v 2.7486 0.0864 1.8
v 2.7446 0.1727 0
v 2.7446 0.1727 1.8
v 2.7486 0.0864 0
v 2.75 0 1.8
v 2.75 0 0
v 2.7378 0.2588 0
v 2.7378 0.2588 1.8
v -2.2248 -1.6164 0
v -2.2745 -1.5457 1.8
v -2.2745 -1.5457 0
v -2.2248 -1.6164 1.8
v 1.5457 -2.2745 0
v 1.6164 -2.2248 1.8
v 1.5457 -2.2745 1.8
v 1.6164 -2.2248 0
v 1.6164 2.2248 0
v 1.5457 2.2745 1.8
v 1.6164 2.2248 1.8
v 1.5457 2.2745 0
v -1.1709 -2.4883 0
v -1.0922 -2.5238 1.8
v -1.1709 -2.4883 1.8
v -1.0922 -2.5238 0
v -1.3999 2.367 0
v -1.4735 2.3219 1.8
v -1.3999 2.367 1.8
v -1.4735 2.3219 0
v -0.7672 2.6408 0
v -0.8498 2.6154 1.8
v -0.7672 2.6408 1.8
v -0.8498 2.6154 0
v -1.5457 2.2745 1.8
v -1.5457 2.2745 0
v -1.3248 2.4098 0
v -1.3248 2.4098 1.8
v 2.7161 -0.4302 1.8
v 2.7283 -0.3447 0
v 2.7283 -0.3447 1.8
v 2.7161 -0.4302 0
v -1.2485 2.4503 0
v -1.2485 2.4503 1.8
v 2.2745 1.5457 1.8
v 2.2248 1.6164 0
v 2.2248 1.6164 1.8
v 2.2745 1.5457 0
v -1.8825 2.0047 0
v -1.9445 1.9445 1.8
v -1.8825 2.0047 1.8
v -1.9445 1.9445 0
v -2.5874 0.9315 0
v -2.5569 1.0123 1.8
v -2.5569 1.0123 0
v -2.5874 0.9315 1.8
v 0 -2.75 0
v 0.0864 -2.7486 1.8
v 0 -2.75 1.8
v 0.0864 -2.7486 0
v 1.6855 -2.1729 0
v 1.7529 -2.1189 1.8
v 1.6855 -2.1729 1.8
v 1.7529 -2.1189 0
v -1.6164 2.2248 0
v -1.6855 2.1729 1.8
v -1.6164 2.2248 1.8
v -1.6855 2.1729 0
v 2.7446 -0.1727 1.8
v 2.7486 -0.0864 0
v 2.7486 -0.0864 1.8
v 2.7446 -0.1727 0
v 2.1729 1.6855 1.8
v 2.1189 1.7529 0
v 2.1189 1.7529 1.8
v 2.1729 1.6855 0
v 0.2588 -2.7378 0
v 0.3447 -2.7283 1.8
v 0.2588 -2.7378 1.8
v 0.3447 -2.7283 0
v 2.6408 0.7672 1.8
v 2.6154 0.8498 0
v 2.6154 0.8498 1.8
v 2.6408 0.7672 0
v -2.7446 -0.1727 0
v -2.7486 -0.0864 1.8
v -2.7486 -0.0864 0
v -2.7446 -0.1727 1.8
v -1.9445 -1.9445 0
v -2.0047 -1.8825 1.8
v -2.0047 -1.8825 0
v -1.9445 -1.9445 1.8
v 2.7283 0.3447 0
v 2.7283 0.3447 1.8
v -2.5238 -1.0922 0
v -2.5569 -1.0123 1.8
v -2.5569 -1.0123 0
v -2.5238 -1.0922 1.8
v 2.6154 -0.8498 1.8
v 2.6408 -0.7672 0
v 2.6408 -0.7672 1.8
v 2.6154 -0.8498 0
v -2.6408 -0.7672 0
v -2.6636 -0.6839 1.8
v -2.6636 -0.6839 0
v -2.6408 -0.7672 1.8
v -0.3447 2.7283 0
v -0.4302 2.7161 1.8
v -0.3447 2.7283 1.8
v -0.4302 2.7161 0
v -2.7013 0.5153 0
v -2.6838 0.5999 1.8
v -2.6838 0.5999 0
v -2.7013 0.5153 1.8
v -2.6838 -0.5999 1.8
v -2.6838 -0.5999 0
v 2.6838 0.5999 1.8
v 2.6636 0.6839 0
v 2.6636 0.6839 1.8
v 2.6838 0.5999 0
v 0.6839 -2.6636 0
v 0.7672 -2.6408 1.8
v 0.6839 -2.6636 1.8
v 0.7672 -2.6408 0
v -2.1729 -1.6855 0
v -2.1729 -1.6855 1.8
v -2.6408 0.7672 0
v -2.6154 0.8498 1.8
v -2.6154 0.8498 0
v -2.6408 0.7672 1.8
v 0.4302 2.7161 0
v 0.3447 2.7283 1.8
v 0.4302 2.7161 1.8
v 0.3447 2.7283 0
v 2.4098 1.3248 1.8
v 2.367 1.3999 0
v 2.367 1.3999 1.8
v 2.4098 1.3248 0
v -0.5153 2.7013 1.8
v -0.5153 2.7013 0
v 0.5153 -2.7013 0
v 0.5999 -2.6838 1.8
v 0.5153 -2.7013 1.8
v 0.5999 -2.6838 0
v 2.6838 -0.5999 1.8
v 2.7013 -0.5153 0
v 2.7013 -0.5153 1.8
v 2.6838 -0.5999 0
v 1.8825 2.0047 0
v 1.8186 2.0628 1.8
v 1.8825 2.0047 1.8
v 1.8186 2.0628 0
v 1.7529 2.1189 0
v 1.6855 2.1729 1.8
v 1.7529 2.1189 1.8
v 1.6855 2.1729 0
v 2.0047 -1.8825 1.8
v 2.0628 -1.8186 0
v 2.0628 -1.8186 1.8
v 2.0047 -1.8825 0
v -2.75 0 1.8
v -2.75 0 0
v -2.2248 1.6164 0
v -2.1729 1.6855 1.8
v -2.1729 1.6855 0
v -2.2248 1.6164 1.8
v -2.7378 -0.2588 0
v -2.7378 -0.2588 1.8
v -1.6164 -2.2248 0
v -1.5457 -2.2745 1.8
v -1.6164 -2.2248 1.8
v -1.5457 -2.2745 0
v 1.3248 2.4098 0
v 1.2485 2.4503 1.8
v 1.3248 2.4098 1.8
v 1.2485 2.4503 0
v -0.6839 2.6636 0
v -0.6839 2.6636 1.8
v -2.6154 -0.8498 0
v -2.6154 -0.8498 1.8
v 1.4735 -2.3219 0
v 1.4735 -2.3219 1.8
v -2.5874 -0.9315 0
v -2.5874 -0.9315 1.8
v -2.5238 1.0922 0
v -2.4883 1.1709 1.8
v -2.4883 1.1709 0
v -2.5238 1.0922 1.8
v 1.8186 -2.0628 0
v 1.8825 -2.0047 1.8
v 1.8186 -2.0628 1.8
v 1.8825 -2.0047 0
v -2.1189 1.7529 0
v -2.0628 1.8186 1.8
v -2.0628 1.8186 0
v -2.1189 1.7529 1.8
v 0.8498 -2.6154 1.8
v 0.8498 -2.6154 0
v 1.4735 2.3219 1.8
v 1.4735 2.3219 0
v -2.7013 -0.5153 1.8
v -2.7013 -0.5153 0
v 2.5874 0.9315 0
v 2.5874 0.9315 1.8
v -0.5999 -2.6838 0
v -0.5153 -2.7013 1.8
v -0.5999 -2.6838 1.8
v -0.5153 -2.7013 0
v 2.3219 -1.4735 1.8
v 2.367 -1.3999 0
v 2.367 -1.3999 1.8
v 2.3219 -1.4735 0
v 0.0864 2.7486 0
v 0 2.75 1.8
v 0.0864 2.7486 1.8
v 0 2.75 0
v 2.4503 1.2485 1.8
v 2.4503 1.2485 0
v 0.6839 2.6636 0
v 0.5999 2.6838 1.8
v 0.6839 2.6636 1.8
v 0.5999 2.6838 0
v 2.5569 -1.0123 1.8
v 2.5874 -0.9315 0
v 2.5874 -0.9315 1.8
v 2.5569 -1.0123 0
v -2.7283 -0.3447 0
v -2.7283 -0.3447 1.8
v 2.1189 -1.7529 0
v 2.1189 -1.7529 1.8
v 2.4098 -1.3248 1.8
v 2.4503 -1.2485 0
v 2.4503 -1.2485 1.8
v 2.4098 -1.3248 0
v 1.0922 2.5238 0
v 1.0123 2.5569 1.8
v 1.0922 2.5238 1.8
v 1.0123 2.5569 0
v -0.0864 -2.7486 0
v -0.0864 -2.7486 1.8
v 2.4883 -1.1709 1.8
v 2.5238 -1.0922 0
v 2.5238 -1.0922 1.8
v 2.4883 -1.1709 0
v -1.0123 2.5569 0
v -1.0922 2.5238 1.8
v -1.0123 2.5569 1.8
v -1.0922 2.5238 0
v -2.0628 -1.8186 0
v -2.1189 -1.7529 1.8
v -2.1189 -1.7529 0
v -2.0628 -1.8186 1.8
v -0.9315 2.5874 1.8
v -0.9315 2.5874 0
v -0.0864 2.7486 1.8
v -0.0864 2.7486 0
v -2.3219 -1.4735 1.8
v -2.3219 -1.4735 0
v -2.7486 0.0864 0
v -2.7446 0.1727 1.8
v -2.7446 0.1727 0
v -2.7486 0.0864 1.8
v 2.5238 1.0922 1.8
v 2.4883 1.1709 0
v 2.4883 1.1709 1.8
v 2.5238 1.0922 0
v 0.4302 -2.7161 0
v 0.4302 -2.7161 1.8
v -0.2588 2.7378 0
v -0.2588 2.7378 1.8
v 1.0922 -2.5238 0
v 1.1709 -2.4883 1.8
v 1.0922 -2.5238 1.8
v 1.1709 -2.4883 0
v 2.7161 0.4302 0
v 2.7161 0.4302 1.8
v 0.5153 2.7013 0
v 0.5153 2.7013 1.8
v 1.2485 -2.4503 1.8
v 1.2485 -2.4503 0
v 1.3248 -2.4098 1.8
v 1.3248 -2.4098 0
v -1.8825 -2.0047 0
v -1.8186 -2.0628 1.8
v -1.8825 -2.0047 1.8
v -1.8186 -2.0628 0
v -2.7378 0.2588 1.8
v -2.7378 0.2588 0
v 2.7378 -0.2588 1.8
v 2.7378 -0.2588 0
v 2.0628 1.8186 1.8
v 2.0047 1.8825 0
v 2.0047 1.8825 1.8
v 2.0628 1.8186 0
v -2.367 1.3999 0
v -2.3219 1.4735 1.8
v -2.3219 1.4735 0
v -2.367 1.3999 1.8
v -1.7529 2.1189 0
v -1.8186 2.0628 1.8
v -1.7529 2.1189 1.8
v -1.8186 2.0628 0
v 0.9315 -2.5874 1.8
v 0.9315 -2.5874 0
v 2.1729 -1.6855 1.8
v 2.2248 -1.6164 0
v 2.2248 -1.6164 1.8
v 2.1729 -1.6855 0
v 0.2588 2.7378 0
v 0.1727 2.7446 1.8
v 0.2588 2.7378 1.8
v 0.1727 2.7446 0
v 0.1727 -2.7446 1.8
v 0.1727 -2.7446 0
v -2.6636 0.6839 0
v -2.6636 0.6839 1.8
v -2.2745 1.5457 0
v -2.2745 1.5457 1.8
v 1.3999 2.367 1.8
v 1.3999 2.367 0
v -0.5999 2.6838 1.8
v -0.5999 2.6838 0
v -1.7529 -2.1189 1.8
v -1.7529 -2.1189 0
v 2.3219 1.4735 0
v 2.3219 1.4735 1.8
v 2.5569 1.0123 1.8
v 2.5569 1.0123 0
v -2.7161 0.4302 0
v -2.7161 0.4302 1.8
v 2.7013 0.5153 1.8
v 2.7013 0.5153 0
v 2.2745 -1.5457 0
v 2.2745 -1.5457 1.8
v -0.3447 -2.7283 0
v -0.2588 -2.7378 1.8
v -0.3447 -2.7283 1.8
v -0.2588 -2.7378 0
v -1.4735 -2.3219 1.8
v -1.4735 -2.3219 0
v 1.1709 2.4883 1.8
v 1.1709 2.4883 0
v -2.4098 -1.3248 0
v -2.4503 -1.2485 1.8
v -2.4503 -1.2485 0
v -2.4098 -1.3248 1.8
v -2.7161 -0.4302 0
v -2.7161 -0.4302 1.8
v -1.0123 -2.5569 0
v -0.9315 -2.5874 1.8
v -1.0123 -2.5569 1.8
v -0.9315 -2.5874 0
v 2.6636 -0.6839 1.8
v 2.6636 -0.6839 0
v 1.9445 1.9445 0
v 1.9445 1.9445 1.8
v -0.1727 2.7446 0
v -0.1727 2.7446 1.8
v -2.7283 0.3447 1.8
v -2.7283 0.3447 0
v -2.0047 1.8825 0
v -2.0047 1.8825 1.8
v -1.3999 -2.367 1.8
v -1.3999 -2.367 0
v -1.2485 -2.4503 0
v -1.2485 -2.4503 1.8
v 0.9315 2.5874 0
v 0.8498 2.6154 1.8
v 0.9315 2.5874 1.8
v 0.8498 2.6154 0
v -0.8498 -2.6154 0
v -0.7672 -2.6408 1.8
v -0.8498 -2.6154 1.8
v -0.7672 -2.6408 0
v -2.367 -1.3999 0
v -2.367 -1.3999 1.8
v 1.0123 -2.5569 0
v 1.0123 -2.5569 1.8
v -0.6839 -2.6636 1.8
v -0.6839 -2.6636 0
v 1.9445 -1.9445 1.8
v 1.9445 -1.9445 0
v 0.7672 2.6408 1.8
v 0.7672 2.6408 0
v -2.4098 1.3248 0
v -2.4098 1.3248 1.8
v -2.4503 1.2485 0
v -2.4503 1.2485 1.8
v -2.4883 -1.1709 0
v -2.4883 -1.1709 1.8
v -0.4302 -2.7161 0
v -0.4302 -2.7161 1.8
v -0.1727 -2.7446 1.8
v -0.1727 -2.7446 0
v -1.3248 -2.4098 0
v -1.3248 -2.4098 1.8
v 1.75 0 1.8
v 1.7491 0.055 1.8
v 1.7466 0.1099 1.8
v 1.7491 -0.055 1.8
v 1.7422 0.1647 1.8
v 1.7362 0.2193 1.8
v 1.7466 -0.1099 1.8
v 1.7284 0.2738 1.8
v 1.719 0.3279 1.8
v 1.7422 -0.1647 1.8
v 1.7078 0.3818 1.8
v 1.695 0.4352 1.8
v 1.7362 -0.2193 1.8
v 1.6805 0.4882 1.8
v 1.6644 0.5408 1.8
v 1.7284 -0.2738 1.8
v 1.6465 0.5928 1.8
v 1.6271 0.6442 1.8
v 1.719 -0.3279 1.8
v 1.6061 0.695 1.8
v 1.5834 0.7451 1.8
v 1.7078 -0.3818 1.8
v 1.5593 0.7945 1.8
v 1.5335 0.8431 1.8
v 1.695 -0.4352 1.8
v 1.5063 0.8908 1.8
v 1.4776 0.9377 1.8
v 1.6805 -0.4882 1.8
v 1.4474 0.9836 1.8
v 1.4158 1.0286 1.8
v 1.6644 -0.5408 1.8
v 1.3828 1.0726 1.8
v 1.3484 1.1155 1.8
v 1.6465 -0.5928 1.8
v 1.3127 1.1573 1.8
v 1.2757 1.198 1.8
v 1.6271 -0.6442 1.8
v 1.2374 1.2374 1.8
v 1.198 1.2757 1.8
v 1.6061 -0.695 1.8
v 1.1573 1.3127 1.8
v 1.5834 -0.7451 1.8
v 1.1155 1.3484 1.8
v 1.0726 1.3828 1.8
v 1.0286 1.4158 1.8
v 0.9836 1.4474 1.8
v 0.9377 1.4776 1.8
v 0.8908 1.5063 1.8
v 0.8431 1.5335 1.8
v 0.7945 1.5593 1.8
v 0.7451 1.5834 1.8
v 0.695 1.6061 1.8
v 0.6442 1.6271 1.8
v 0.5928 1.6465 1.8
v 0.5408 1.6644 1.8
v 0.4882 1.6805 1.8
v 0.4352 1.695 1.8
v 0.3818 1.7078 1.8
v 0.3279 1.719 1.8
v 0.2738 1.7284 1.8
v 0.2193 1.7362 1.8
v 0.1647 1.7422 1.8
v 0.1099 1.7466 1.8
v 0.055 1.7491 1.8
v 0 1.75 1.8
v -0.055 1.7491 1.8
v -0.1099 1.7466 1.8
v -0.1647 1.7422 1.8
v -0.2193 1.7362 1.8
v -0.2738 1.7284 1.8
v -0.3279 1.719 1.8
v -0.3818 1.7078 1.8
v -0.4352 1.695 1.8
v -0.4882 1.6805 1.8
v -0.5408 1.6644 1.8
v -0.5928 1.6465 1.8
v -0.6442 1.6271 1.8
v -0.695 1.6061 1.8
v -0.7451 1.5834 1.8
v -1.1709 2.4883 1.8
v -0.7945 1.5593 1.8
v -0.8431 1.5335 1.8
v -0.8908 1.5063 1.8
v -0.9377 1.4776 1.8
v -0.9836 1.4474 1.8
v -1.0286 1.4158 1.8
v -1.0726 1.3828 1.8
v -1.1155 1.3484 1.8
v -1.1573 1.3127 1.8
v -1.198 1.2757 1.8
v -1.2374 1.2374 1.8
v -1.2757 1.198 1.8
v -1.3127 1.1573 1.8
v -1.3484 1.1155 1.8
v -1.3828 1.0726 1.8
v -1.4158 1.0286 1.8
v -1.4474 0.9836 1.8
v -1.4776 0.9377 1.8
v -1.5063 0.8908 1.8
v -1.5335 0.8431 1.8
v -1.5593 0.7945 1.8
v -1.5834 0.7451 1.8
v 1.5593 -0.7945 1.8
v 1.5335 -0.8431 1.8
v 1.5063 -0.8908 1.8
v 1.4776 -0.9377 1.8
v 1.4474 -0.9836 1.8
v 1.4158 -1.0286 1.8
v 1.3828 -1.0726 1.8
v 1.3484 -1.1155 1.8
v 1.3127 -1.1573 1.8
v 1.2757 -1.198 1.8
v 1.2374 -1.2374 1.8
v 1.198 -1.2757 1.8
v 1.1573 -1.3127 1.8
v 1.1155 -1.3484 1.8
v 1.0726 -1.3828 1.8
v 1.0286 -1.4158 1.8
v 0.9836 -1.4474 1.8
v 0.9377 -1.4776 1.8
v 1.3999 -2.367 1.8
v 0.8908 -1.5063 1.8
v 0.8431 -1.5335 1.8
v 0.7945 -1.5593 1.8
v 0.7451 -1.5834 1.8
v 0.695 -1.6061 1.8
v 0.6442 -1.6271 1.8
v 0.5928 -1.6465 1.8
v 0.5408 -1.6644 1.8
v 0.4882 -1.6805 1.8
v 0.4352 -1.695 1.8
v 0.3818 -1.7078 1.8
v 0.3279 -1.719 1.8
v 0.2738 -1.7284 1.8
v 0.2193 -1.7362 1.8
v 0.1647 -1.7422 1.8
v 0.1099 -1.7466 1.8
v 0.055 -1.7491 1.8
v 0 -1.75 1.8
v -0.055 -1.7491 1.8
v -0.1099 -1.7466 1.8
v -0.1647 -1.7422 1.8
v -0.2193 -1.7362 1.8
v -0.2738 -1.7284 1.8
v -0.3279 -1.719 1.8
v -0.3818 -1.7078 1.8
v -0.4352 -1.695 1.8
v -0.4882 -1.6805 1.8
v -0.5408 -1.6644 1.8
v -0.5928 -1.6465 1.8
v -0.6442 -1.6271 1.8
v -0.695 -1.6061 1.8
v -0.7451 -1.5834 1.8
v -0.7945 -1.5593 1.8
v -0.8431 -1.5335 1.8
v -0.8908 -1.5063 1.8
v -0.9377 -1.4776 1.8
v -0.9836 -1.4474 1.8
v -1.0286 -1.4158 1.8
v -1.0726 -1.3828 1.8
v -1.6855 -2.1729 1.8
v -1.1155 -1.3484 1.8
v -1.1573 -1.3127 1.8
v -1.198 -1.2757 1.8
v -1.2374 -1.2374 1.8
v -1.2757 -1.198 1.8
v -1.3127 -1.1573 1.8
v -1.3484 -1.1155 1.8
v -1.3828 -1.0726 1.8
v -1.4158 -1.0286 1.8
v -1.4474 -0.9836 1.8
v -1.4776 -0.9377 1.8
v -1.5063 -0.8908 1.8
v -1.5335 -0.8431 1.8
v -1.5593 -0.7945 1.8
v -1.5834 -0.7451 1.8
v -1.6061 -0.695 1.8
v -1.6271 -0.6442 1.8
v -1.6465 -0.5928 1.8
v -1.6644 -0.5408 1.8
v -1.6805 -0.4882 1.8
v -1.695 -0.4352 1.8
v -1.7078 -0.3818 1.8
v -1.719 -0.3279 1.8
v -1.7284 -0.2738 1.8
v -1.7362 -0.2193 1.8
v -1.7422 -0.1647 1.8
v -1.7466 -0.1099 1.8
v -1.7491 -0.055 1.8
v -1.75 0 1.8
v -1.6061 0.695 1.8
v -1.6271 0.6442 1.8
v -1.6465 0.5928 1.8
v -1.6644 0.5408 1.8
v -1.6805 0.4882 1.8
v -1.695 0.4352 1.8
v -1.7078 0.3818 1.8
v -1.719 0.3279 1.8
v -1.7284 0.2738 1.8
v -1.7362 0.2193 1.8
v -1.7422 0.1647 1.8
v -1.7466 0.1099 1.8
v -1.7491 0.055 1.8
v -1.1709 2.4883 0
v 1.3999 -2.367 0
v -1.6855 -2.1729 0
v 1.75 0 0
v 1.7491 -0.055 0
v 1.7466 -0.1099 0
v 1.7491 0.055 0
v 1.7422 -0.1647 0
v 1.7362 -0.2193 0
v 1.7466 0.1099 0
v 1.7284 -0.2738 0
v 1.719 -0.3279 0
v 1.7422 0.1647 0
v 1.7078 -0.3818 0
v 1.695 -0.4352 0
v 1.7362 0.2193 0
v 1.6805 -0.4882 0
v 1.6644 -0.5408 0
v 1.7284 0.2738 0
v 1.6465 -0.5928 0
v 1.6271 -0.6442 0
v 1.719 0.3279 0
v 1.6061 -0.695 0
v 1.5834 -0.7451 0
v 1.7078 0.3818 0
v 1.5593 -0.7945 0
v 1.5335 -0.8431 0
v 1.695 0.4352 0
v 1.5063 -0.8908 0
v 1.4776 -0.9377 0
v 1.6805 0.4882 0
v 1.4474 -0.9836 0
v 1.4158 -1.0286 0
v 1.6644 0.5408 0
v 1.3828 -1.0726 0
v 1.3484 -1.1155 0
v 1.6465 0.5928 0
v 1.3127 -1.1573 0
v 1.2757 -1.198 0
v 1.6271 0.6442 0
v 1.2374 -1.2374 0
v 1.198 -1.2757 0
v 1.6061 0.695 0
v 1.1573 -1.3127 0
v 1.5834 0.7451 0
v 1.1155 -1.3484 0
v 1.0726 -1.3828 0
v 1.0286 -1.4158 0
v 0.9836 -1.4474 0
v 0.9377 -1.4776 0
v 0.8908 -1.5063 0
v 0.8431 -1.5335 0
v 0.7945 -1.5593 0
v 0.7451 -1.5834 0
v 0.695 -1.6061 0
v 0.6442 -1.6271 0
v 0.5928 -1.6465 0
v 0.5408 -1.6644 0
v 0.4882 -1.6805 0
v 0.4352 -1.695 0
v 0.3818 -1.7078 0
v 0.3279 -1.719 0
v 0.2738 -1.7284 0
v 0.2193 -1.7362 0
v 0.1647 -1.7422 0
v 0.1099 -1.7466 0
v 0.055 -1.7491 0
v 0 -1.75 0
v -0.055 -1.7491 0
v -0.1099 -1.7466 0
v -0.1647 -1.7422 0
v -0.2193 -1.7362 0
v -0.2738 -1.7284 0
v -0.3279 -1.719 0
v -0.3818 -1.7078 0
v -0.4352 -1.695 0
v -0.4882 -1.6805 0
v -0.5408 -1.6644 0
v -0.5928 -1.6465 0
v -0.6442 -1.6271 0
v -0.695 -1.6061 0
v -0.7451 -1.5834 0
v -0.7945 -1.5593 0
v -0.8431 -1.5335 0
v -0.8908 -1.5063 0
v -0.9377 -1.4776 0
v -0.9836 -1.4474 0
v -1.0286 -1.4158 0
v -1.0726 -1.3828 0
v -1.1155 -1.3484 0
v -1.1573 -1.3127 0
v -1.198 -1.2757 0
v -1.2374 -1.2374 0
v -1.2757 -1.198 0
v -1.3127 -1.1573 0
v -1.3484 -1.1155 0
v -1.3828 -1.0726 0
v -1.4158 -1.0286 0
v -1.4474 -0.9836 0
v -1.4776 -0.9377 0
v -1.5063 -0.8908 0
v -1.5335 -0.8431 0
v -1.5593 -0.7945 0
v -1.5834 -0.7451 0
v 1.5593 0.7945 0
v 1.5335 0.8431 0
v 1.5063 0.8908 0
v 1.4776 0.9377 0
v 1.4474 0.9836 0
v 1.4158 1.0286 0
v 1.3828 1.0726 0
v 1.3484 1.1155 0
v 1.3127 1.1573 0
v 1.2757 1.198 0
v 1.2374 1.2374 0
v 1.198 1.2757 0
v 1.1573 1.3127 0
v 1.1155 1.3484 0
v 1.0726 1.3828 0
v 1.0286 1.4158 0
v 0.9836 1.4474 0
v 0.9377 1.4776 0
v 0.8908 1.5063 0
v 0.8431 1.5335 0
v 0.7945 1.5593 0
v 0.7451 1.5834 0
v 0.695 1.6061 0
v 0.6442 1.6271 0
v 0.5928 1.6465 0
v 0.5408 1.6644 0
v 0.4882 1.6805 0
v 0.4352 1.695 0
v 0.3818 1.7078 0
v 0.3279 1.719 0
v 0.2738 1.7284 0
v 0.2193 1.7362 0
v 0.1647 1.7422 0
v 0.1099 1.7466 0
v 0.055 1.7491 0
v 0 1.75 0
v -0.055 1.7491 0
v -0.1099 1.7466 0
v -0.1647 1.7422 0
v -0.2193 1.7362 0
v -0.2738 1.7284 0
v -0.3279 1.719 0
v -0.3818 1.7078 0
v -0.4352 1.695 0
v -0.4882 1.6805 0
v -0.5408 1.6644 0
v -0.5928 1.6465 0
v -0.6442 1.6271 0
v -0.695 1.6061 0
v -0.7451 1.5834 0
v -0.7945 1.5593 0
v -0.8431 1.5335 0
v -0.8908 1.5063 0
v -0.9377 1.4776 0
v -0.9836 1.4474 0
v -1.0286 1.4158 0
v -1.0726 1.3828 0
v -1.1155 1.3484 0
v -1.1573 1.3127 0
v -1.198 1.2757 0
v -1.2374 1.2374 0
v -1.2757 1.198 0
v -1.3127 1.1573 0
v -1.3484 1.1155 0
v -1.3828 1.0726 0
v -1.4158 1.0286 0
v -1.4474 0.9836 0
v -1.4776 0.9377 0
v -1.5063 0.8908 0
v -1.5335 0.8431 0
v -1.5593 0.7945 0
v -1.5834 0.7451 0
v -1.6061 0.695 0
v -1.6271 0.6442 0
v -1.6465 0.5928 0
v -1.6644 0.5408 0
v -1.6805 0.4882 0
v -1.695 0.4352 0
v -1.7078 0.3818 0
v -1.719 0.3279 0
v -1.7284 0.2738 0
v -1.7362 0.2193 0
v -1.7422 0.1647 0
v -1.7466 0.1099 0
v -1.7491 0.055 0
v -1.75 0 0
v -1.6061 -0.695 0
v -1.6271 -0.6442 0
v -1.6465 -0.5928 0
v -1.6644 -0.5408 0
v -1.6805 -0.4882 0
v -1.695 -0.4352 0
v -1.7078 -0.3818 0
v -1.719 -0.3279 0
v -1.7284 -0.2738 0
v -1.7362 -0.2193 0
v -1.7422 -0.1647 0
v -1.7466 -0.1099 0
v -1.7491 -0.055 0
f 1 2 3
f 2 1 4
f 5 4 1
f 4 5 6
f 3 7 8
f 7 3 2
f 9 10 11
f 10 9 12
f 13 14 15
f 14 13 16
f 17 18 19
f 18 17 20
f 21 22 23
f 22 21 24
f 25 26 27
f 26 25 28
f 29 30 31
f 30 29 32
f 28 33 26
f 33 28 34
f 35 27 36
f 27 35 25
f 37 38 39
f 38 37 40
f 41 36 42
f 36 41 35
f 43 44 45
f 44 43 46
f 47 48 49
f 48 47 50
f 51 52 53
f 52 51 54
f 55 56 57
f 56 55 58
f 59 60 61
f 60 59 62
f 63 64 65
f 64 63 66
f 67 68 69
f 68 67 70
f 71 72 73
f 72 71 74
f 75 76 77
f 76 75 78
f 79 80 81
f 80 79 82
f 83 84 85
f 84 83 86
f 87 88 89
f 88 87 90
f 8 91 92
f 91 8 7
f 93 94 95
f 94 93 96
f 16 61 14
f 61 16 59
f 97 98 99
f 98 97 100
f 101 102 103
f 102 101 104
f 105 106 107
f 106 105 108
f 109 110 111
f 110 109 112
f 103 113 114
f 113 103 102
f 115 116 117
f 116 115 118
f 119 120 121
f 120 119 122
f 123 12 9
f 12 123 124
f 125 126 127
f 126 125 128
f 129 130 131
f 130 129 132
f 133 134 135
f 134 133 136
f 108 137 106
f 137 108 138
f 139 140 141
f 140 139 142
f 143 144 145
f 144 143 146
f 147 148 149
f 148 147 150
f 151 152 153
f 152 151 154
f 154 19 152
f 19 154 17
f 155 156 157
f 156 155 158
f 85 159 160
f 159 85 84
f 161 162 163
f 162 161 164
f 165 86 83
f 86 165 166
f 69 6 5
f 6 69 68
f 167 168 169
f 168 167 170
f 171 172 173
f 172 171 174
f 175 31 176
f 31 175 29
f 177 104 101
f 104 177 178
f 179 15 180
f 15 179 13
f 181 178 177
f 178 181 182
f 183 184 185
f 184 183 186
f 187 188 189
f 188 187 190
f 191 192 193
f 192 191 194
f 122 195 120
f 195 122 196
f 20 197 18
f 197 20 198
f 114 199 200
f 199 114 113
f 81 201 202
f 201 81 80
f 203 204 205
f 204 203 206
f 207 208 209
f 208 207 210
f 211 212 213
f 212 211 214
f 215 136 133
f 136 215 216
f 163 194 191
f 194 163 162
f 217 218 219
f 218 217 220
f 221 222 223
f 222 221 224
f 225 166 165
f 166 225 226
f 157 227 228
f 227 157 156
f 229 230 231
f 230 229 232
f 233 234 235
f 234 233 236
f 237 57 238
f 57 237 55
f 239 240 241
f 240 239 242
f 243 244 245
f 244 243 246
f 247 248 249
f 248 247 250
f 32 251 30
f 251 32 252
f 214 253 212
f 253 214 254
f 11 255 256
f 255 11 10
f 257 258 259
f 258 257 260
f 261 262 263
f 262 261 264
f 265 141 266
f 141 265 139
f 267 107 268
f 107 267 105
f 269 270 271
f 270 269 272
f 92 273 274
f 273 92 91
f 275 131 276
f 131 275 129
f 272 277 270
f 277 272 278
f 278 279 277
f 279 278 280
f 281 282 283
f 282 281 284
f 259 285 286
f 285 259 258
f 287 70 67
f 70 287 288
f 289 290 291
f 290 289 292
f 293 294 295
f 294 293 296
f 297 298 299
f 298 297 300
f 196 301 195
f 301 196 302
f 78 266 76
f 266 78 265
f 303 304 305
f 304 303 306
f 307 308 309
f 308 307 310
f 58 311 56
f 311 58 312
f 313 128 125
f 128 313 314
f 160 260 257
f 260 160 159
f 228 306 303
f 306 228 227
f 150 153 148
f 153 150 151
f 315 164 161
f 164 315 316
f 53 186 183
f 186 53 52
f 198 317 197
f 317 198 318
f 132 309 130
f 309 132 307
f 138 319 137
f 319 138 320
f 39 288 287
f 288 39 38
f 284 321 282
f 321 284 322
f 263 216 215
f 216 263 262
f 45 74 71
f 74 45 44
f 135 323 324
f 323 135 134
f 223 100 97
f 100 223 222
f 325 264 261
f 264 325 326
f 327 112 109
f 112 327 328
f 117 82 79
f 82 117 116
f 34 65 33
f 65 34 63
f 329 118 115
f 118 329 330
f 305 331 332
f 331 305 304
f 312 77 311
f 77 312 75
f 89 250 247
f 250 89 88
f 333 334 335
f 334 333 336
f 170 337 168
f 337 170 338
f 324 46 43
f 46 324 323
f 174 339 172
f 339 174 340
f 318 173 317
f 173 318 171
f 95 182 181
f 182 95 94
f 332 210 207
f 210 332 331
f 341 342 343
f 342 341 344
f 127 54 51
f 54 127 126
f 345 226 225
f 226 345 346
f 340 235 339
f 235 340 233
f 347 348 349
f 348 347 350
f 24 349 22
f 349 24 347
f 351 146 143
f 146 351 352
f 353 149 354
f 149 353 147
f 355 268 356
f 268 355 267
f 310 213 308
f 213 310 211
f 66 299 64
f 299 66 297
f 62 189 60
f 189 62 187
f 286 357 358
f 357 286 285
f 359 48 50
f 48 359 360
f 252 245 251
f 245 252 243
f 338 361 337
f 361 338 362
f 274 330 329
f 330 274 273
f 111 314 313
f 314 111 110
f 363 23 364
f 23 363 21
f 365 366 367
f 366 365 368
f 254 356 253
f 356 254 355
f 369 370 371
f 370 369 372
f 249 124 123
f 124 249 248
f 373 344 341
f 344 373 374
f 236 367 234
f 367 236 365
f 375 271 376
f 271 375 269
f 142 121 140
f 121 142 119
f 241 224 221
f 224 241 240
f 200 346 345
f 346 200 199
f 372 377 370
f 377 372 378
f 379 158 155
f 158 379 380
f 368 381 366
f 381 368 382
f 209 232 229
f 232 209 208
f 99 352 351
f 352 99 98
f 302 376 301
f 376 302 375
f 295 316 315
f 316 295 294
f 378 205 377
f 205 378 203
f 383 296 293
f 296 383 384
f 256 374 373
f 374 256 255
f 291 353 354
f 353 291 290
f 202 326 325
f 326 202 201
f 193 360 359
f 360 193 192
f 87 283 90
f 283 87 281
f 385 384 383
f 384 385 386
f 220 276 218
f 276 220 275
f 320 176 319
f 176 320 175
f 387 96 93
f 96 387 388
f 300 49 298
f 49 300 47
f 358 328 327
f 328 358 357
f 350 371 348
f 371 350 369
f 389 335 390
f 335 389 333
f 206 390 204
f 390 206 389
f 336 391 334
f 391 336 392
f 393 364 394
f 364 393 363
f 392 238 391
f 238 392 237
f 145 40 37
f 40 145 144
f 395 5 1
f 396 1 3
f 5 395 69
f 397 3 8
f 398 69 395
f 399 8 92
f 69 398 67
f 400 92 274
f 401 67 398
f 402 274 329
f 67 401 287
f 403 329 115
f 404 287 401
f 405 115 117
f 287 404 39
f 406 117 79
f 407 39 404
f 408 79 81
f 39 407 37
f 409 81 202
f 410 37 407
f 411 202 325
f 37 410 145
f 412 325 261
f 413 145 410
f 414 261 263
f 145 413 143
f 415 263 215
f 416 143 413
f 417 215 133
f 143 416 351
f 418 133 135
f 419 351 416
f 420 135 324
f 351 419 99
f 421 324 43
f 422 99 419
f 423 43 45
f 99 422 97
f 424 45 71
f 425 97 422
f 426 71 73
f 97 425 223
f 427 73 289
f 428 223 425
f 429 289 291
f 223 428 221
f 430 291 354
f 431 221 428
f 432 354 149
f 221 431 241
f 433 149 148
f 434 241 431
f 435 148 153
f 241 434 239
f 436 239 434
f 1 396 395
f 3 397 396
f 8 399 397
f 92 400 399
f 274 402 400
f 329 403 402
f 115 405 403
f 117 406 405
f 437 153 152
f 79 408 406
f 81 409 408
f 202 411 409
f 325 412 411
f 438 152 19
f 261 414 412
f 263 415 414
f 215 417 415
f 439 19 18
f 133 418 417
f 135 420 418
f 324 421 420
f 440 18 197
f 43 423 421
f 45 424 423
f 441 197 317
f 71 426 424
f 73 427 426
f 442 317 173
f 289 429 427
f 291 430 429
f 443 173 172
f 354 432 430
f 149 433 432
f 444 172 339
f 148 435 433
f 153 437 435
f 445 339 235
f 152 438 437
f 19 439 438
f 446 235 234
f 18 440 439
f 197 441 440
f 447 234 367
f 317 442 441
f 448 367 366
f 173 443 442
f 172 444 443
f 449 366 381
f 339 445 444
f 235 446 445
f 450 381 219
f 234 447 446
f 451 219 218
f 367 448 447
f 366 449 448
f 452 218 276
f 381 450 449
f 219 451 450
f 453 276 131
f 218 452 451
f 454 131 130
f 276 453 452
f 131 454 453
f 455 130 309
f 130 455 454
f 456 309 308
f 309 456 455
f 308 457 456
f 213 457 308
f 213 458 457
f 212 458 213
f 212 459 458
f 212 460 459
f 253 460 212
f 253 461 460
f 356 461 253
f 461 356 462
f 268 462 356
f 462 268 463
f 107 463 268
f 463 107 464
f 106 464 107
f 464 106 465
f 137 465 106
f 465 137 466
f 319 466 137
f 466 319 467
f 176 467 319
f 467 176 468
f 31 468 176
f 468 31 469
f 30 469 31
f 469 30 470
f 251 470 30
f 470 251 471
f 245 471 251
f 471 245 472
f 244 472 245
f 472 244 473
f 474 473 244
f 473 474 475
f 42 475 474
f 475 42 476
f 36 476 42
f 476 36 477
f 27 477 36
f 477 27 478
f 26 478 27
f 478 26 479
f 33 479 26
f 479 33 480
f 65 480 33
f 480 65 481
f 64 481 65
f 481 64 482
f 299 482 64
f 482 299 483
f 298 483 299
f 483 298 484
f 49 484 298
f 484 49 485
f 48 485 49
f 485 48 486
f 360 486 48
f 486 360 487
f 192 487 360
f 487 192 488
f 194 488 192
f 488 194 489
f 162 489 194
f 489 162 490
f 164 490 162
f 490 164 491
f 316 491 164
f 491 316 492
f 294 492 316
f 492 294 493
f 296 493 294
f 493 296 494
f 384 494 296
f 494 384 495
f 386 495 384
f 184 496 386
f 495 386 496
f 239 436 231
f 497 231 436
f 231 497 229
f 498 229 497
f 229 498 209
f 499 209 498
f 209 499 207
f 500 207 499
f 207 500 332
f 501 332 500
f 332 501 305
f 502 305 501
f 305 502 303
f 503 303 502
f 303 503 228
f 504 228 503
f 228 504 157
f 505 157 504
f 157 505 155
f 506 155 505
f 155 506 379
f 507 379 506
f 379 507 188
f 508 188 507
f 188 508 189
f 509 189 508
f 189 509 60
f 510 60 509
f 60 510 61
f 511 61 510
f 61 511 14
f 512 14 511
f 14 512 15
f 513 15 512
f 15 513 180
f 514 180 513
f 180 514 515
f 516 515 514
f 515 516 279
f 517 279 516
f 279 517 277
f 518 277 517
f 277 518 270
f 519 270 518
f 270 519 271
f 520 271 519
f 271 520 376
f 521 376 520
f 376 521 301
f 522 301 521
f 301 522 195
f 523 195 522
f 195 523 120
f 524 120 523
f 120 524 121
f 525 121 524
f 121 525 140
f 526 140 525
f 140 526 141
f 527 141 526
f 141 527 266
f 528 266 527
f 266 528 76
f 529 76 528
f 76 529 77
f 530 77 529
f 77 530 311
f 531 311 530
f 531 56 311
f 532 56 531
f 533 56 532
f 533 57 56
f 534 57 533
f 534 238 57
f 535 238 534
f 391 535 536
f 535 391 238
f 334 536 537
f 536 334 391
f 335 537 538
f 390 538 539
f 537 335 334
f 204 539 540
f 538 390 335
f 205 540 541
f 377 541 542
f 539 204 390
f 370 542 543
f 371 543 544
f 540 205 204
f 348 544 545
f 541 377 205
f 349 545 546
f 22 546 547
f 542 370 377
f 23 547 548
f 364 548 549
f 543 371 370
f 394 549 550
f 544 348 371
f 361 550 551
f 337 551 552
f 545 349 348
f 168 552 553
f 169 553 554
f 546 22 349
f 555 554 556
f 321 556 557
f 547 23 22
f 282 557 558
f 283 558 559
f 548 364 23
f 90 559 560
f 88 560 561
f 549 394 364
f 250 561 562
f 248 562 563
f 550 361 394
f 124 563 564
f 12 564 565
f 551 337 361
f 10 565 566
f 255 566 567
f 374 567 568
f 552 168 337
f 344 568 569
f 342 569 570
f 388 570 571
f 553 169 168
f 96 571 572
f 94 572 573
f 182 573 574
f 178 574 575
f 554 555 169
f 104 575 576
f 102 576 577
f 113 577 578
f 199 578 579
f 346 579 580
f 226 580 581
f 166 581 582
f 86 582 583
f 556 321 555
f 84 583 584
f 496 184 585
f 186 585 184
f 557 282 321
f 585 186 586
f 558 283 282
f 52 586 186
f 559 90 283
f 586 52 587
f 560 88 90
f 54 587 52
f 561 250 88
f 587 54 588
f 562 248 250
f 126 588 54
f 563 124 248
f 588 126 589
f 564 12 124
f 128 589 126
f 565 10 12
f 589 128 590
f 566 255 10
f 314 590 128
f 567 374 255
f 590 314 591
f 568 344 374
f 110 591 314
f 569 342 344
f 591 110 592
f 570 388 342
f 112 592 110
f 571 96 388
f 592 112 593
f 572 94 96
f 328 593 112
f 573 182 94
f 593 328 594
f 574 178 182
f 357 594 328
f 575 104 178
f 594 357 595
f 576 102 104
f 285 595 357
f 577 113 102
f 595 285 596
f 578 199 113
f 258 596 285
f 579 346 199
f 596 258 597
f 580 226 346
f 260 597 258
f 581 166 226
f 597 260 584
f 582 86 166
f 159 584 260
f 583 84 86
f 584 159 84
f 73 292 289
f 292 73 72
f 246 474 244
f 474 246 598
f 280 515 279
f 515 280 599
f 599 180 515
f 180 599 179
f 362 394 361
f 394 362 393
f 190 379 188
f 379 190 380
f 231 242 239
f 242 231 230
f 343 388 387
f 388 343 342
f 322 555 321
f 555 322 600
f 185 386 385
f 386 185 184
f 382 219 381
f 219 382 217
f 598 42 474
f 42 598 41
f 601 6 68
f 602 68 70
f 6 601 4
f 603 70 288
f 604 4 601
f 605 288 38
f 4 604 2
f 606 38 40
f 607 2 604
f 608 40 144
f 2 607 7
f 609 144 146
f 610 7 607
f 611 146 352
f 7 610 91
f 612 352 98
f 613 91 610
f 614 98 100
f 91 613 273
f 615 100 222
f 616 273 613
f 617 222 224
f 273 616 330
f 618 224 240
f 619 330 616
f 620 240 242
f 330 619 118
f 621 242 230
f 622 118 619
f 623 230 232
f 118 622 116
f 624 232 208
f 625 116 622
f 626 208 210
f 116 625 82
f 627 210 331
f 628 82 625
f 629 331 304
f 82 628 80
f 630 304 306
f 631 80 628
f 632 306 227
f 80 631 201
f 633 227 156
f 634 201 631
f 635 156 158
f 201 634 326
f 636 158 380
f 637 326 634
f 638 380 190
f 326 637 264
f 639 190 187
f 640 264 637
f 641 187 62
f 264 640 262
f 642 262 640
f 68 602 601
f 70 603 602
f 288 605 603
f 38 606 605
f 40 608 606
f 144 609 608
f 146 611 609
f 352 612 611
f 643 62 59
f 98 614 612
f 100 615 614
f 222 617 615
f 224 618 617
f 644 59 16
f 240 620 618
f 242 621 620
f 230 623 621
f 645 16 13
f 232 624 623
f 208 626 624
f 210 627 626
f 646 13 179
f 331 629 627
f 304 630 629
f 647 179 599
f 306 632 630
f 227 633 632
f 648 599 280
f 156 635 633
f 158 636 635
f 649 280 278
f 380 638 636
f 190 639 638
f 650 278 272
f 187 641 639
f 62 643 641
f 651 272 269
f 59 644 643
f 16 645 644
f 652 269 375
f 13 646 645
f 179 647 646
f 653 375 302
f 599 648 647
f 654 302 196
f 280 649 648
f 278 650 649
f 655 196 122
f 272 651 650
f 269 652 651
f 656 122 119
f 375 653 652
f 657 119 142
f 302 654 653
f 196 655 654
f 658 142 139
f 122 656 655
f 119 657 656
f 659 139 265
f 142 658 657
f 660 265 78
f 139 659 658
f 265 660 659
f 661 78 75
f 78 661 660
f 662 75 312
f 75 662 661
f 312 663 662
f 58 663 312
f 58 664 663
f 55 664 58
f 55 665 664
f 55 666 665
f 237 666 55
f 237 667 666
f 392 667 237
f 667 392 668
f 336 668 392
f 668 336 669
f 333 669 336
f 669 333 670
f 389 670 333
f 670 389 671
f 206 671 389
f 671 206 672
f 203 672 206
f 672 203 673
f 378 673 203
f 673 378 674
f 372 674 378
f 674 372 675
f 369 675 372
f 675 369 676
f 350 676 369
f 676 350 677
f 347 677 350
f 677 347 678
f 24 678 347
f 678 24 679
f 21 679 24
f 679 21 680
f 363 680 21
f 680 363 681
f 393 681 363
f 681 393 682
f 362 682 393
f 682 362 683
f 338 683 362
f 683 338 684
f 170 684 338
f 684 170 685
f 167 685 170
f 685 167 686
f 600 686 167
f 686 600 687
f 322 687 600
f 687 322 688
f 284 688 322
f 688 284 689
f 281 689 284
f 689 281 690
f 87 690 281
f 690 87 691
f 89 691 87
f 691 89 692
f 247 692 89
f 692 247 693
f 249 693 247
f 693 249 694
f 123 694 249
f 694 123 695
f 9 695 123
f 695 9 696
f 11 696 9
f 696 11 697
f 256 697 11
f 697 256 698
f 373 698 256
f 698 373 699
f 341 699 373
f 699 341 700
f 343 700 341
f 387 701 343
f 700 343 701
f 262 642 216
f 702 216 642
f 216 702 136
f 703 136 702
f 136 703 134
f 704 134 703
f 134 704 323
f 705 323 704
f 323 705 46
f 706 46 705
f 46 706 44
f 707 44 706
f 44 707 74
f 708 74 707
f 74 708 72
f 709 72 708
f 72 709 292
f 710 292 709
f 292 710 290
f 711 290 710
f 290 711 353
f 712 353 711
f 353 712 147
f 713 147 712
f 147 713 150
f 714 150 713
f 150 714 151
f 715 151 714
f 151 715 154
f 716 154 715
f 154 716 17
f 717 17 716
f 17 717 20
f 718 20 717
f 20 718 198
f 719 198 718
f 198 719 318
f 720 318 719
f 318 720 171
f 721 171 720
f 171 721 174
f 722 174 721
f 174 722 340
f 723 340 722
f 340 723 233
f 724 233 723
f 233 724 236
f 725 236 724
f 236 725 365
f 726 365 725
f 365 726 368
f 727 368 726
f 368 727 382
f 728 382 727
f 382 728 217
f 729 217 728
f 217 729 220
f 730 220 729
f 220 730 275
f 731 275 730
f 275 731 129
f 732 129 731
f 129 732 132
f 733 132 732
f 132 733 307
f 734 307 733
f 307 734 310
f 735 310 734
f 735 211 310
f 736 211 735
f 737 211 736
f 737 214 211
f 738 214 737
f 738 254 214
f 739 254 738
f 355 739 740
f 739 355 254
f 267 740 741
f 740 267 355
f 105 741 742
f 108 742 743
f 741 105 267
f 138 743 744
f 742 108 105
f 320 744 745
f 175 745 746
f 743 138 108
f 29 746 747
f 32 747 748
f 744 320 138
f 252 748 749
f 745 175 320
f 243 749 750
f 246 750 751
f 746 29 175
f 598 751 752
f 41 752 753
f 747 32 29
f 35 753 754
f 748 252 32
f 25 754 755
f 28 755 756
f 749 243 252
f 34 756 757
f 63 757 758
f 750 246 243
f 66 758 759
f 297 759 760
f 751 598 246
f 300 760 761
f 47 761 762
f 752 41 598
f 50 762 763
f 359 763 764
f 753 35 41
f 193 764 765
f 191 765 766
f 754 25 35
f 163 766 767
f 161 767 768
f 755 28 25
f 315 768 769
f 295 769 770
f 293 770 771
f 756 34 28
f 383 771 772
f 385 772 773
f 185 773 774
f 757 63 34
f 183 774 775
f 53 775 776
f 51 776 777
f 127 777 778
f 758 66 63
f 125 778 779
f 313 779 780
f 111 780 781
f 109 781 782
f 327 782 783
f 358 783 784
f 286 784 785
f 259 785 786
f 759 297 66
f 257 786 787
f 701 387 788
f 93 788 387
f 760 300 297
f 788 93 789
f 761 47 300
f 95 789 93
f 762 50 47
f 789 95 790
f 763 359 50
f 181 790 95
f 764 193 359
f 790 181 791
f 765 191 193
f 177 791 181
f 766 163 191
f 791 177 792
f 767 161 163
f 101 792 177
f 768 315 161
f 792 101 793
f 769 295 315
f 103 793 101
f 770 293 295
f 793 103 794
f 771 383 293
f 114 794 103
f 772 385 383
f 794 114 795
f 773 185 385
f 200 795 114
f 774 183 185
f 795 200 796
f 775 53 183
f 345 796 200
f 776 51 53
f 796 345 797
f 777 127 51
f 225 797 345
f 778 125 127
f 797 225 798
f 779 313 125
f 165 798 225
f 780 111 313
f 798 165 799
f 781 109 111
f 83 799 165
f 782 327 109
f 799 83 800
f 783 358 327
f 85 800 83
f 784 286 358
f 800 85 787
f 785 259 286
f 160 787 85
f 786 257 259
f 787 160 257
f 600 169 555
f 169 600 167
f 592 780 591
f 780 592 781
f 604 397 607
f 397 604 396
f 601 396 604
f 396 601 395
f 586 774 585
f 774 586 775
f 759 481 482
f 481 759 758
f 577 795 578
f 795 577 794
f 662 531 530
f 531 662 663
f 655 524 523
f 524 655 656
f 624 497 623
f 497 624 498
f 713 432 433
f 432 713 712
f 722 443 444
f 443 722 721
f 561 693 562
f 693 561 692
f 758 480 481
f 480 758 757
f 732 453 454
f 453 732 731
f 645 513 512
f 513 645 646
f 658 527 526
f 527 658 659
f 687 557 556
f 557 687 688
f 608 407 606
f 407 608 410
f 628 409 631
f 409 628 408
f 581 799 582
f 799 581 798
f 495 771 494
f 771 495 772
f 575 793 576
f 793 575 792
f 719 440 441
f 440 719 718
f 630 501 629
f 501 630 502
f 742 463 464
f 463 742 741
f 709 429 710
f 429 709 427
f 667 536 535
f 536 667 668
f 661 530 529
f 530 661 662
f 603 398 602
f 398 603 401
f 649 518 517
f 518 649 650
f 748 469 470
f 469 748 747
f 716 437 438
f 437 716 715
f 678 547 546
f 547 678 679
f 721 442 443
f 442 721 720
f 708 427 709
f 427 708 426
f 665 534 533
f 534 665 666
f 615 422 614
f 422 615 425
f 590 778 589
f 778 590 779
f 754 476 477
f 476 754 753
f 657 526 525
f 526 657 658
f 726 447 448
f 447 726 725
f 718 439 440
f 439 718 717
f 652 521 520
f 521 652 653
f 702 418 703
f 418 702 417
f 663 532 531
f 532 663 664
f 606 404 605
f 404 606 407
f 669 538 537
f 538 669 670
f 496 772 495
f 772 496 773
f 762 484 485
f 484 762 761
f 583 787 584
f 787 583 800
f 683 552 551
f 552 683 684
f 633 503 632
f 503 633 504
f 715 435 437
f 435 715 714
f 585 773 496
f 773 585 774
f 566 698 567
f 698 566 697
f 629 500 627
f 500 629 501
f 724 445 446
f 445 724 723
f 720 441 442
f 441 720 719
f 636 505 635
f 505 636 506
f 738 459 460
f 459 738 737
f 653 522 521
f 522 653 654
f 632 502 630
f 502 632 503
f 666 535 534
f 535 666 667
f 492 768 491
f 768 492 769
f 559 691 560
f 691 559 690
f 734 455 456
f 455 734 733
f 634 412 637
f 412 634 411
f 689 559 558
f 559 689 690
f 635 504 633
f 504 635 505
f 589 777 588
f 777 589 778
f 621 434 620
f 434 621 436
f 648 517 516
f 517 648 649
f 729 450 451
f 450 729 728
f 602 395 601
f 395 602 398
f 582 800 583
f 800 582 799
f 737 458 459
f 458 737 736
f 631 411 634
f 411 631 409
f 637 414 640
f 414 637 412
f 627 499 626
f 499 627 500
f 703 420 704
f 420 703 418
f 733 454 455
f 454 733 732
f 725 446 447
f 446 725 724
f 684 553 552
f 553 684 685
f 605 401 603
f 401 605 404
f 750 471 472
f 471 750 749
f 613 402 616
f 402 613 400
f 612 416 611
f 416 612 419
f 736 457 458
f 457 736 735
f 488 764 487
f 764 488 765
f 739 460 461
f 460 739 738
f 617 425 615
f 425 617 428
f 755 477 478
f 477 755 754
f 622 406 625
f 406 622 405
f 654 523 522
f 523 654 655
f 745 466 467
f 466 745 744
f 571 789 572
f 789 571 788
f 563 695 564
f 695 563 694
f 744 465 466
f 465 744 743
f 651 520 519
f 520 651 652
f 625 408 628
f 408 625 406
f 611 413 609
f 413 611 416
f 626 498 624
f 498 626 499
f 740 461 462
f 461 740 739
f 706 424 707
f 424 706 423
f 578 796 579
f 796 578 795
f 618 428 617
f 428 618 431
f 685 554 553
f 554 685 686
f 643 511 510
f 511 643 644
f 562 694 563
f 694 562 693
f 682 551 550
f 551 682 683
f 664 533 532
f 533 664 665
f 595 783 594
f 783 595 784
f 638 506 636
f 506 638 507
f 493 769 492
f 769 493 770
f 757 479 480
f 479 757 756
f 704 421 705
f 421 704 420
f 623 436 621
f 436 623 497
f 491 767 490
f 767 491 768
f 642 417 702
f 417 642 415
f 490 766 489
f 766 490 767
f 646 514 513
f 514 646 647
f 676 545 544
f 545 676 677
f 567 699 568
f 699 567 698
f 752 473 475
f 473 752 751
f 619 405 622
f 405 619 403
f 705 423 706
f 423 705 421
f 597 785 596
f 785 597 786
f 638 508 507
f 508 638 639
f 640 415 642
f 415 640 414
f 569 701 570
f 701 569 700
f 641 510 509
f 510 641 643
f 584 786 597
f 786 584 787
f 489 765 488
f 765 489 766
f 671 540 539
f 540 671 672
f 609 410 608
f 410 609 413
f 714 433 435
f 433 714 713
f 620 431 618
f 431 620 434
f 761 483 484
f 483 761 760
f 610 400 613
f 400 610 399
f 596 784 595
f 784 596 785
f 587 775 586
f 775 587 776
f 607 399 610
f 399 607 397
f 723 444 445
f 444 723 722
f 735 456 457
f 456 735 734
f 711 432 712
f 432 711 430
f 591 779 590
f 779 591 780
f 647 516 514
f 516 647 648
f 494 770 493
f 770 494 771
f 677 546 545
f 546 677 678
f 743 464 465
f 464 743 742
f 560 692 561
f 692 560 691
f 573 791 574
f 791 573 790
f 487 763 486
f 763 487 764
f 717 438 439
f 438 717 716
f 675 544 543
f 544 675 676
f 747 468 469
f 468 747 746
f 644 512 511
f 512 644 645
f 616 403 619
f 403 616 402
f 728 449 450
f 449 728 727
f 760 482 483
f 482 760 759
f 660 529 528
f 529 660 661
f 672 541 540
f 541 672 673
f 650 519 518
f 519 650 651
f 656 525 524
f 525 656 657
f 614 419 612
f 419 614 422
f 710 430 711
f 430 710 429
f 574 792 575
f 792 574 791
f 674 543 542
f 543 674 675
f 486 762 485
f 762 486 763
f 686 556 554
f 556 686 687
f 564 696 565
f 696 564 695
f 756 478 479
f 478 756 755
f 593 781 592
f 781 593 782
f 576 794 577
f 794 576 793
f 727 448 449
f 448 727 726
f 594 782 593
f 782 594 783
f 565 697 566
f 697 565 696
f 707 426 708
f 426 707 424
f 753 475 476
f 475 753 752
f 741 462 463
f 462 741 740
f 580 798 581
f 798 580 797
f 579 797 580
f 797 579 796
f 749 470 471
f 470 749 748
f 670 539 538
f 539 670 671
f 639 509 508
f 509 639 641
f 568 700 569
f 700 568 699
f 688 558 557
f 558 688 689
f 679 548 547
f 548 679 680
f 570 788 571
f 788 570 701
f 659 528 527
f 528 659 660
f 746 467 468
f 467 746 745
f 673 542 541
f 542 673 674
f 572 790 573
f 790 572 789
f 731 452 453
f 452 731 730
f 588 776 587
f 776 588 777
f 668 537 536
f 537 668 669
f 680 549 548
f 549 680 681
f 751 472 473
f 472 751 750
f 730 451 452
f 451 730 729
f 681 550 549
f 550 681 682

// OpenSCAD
longueur = 1.8; //mm
diametre_interieur = 3; //mm
jeu = 0.25; //mm
epaisseur = 1; //mm
$fn=200;
difference(){
    //exterieur
    cylinder(d=diametre_interieur + 2 * jeu + 2 * epaisseur, h=longueur);
    //trou
    translate([0,0,-jeu]) cylinder(d=diametre_interieur + 2 * jeu, h=longueur + 2 * jeu);
}
